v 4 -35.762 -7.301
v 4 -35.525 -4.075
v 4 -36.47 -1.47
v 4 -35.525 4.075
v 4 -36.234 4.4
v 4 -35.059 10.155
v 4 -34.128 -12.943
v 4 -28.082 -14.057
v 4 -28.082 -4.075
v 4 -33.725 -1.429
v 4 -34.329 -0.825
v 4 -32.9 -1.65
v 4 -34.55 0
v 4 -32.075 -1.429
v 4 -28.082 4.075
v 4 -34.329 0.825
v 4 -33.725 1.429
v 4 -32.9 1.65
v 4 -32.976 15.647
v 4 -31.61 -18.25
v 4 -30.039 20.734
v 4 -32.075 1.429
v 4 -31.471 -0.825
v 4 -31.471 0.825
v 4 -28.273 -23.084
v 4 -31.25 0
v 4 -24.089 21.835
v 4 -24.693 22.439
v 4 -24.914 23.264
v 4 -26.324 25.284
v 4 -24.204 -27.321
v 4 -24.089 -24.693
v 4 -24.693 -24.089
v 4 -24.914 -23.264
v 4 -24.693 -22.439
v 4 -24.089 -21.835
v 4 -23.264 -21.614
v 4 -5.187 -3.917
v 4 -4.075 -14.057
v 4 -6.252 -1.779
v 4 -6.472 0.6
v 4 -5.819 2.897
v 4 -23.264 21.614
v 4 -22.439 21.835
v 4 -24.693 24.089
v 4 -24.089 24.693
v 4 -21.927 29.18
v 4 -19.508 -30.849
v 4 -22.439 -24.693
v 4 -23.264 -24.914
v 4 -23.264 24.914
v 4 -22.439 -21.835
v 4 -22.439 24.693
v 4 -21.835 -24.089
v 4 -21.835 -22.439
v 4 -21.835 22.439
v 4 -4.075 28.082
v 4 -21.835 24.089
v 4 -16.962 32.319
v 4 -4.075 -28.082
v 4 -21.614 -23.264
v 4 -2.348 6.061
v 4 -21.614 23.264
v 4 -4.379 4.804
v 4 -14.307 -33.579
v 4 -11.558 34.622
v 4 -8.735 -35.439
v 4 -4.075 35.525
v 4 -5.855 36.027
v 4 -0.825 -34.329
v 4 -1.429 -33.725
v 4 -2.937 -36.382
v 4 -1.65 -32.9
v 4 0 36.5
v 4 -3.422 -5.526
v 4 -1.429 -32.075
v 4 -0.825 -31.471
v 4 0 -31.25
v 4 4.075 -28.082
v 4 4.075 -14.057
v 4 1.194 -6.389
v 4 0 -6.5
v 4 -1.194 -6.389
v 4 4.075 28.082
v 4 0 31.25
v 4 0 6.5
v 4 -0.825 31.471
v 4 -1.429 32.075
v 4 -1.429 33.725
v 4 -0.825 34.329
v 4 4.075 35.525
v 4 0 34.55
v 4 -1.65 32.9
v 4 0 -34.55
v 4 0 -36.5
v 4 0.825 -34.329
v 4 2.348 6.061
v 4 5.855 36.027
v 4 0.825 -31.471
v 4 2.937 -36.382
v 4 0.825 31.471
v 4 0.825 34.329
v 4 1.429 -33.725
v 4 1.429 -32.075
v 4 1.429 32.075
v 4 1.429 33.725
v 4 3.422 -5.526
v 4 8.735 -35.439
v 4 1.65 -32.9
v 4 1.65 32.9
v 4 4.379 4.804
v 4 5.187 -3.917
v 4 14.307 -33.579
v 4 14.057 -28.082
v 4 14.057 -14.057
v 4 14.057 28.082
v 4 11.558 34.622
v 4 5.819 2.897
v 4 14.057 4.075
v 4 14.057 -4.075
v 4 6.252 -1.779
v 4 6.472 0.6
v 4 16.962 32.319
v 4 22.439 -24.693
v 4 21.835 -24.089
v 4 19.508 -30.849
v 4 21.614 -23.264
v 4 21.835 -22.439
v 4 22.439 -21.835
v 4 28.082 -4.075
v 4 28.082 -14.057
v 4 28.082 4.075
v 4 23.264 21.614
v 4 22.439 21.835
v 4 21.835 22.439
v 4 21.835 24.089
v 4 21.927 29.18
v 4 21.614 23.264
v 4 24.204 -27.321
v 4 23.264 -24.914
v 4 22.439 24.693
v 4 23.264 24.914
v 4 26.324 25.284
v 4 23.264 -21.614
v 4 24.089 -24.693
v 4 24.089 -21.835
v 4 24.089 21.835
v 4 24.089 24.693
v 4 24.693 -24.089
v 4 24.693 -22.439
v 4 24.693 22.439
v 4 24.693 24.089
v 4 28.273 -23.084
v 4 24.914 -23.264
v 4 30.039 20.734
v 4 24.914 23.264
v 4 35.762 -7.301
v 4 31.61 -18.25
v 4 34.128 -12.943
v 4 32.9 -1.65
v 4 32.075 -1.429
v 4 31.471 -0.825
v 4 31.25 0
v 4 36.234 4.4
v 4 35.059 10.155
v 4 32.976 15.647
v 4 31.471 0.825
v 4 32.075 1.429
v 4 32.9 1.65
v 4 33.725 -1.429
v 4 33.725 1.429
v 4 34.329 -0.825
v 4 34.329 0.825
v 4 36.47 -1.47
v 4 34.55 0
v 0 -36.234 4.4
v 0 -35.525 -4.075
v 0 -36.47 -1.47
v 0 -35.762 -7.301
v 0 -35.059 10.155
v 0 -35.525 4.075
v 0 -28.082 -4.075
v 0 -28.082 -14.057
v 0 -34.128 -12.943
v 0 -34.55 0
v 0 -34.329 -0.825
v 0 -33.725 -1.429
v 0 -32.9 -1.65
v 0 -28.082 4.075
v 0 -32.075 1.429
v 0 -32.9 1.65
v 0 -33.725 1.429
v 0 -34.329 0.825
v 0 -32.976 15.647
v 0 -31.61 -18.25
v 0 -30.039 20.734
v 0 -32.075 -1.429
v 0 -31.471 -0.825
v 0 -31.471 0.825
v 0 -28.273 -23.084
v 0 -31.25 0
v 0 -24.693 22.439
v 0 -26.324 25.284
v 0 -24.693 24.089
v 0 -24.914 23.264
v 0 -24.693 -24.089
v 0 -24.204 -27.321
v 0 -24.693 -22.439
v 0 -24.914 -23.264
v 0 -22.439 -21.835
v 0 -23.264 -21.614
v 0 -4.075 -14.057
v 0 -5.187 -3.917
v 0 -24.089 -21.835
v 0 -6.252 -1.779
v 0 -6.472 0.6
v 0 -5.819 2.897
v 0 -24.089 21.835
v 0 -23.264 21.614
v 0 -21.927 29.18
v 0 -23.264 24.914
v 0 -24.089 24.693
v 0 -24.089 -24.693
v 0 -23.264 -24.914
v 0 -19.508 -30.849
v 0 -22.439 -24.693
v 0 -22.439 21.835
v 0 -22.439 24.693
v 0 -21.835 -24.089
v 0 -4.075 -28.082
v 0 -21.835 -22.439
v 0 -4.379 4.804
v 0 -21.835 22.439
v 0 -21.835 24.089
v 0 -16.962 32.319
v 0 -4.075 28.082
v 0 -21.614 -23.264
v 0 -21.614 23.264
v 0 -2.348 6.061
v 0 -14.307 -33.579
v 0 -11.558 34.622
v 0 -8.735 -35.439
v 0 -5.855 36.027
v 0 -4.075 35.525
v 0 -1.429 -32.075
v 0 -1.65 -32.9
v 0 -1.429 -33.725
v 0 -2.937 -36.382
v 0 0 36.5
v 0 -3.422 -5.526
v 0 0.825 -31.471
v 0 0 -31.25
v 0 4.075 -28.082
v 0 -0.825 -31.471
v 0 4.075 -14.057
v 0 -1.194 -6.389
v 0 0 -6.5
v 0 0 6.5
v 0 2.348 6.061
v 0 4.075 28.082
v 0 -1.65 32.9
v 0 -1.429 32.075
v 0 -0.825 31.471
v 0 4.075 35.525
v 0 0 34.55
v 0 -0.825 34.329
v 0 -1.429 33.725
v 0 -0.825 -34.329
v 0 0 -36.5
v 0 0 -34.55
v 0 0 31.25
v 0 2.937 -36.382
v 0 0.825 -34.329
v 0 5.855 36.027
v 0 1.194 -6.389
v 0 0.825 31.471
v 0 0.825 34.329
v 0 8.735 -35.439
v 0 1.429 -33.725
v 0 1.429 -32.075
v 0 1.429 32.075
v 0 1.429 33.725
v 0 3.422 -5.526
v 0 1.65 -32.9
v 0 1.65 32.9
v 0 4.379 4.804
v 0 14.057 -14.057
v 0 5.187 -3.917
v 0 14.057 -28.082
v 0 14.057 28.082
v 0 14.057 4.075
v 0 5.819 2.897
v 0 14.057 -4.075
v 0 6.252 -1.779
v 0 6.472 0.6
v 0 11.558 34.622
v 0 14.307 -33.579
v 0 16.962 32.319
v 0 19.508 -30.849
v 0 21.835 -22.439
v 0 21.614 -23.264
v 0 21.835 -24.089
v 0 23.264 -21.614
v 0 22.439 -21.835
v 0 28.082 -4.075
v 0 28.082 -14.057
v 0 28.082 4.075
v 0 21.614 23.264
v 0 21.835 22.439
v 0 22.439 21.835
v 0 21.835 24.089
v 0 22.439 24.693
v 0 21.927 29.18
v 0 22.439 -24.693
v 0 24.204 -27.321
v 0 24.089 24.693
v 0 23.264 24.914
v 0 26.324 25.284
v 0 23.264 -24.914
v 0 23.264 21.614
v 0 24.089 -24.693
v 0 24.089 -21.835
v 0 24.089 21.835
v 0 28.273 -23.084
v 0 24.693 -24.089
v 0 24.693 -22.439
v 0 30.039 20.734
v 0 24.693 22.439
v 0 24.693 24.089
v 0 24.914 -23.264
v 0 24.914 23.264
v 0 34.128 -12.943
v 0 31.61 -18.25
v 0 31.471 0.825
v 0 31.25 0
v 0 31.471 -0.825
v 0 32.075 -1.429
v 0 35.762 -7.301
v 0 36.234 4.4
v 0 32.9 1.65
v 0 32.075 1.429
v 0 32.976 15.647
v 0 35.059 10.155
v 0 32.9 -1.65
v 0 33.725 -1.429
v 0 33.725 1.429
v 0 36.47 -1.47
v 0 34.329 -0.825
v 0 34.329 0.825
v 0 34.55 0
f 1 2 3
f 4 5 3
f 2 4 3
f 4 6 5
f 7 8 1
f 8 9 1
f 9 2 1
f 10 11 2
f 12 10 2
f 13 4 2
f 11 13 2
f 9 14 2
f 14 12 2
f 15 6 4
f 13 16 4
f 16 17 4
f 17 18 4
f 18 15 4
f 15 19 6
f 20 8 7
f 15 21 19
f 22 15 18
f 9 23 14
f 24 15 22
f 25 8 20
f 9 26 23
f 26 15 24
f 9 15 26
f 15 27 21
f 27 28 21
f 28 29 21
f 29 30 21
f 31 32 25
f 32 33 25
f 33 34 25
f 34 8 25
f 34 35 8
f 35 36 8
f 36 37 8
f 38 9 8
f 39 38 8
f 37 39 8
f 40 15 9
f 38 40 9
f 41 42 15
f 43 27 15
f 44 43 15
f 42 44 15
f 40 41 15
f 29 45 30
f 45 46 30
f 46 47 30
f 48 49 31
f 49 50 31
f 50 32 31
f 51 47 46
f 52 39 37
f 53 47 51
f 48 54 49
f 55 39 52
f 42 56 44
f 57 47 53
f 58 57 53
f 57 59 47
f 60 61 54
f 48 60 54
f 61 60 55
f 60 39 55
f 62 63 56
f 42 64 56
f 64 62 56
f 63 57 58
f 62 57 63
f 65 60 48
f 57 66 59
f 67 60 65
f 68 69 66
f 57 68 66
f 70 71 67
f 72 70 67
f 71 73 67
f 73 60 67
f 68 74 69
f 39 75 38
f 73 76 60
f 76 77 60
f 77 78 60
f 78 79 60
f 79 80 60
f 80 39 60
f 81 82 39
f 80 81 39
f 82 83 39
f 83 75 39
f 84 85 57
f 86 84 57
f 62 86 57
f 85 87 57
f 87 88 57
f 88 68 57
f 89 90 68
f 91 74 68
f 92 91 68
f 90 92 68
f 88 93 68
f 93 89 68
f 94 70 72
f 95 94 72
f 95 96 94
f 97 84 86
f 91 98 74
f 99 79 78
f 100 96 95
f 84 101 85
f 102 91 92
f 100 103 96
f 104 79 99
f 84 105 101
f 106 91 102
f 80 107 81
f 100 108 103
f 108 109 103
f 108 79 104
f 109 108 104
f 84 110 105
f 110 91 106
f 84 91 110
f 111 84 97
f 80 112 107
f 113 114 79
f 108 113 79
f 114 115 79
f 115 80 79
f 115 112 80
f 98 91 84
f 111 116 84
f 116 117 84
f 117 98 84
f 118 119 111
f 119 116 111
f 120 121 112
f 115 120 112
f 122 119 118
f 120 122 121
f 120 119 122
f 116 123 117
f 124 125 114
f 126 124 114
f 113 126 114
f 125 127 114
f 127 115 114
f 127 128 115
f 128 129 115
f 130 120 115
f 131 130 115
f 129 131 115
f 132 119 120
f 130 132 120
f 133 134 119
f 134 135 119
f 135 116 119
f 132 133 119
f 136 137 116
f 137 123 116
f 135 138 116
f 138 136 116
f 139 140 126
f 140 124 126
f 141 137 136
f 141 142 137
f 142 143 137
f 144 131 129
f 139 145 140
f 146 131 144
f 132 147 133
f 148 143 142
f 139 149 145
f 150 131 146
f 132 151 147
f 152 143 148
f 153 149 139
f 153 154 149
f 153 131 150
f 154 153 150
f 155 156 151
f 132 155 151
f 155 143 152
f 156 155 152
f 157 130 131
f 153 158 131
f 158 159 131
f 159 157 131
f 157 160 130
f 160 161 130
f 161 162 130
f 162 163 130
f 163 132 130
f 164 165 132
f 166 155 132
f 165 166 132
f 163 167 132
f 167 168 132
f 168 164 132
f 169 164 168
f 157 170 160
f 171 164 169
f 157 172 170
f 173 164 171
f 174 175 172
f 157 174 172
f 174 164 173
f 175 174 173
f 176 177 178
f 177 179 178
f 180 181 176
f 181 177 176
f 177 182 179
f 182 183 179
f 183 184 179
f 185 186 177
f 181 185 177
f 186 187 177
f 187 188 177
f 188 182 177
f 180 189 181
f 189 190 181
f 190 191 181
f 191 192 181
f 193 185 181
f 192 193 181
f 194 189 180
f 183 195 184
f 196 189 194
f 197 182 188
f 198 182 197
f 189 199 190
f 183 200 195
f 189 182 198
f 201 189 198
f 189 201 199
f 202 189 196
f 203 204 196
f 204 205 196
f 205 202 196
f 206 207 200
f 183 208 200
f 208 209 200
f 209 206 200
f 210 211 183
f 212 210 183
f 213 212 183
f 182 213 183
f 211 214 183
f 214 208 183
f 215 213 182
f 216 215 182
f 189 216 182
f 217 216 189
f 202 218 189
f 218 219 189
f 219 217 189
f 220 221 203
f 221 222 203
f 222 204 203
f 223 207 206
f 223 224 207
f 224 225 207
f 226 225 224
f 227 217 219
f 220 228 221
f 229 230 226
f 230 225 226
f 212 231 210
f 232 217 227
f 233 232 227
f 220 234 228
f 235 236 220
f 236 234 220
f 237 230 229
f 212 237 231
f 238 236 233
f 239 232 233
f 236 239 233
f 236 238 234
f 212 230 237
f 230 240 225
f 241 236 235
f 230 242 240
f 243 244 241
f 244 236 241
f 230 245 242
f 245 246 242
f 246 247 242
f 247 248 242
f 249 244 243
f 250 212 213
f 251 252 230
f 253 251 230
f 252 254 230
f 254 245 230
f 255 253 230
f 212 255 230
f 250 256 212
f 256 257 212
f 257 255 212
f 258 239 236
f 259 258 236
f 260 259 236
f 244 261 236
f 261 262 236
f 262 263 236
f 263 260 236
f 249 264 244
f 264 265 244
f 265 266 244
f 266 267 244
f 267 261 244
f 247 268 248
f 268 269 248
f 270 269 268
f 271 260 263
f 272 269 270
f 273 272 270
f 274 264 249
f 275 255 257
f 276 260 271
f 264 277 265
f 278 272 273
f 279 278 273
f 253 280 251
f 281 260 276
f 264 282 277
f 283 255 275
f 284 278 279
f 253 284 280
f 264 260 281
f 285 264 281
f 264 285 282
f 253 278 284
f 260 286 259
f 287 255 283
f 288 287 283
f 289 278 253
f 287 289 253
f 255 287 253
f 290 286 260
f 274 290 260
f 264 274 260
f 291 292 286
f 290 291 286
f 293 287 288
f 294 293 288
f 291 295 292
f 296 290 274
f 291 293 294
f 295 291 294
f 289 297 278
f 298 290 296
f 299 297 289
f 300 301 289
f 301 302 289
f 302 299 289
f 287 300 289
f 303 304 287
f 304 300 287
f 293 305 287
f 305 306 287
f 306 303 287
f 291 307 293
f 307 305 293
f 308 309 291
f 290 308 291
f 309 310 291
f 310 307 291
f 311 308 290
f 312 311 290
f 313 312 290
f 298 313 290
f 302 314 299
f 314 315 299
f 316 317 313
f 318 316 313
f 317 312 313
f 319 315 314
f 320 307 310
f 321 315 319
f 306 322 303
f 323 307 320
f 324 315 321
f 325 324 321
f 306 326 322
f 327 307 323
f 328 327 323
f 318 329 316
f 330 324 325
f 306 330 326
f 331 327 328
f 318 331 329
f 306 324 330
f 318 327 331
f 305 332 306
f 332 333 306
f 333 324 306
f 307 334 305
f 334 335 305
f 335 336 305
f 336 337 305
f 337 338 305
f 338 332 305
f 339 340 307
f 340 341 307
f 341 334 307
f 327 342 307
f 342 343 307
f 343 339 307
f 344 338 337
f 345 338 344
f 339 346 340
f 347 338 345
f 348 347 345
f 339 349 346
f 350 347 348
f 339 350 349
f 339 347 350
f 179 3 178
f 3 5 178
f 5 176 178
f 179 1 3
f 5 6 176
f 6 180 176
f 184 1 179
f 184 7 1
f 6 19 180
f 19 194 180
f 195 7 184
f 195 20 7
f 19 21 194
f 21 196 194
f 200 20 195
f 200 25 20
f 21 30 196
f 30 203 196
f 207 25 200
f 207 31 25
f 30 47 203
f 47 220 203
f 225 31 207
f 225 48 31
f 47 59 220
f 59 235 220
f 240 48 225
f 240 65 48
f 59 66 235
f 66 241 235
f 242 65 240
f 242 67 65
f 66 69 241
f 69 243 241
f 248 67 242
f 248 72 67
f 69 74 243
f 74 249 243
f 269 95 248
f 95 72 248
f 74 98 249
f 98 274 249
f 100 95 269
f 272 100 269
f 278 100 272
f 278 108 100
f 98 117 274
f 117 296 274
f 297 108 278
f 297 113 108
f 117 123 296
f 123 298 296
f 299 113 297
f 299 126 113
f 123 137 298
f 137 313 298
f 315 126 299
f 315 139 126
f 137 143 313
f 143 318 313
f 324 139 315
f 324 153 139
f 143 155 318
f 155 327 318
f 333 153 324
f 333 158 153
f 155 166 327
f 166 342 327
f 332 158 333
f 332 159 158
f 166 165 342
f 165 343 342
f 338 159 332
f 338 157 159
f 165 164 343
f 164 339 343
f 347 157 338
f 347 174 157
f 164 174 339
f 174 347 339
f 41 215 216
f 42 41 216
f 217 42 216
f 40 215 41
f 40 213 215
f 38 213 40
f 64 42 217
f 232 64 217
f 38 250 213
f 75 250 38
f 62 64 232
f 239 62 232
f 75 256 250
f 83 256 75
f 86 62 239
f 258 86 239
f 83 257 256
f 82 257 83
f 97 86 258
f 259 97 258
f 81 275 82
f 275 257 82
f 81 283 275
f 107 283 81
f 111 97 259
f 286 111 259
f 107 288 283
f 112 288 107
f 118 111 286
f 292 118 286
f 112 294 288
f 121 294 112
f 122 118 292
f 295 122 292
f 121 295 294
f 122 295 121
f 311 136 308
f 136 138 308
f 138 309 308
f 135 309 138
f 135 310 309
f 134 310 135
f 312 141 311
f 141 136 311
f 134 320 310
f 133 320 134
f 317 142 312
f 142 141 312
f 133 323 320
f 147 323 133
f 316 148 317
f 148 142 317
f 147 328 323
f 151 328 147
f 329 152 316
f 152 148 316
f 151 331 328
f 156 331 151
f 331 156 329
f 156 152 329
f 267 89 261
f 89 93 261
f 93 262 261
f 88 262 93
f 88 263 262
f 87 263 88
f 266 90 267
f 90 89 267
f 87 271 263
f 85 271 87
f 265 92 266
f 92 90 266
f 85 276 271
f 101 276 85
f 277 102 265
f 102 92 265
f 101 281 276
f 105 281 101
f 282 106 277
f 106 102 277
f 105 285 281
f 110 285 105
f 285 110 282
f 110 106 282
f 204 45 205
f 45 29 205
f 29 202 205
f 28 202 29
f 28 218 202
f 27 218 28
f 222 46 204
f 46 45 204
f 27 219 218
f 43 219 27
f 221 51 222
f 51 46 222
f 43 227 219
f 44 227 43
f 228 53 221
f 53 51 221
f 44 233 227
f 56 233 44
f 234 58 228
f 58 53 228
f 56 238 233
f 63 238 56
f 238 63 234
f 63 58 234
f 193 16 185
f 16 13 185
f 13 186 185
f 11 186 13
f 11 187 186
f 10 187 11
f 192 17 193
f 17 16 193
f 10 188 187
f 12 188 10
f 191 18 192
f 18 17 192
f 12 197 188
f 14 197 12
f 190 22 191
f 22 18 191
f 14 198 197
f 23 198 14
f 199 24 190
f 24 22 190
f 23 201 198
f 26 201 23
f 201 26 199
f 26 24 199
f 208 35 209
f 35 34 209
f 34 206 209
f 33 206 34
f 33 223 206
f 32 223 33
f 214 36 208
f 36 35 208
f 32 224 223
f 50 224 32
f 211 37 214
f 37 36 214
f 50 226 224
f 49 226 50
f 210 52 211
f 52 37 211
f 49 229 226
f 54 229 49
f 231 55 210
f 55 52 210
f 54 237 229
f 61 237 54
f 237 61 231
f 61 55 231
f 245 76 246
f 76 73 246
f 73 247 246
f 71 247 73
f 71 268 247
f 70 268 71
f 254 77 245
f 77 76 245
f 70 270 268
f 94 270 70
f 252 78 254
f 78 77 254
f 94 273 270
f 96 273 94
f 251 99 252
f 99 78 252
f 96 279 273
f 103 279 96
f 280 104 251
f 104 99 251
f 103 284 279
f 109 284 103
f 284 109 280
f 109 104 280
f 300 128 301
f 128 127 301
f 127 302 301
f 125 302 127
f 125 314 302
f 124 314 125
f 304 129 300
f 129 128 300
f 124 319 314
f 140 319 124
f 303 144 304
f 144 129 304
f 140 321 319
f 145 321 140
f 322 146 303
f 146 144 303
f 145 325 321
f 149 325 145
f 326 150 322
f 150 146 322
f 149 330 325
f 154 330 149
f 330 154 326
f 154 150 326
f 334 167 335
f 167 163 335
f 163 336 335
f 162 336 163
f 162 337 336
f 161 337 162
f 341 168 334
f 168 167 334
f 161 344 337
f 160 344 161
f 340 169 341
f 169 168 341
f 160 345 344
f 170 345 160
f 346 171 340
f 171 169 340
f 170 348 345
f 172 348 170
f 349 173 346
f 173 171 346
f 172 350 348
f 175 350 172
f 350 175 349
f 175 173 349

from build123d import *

# Parameters (mm, degrees)
SKETCH_1_R          = 36.5
SKETCH_1_R_2        = 6.5
EXTRUDE_1_DEPTH     = 4
SKETCH_2_R          = 1.65
CUT_EXTRUDE_1_DEPTH = 6


with BuildPart() as part:
    # 草图1 → 凸台-拉伸1 (new body)
    with BuildSketch(Plane(origin=(0, 0, 0), x_dir=(0, 0, -1), z_dir=(1, 0, 0))):
        Circle(SKETCH_1_R)
        Circle(SKETCH_1_R_2, mode=Mode.SUBTRACT)
    extrude(amount=EXTRUDE_1_DEPTH)

    # 草图2 → 切除-拉伸1 (cut)
    with BuildSketch(Plane(origin=(4, 0, 0), x_dir=(0, 0, -1), z_dir=(1, 0, 0))):
        with Locations((32.9, 0)):
            Circle(SKETCH_2_R)
        with Locations((23.263813101, -23.263813101)):
            Circle(SKETCH_2_R)
        with Locations((0, -32.9)):
            Circle(SKETCH_2_R)
        with Locations((-23.263813101, -23.263813101)):
            Circle(SKETCH_2_R)
        with Locations((-32.9, 0)):
            Circle(SKETCH_2_R)
        with Locations((-23.263813101, 23.263813101)):
            Circle(SKETCH_2_R)
        with Locations((0, 32.9)):
            Circle(SKETCH_2_R)
        with Locations((23.263813101, 23.263813101)):
            Circle(SKETCH_2_R)
    extrude(amount=-CUT_EXTRUDE_1_DEPTH, mode=Mode.SUBTRACT)


solid = part.part
